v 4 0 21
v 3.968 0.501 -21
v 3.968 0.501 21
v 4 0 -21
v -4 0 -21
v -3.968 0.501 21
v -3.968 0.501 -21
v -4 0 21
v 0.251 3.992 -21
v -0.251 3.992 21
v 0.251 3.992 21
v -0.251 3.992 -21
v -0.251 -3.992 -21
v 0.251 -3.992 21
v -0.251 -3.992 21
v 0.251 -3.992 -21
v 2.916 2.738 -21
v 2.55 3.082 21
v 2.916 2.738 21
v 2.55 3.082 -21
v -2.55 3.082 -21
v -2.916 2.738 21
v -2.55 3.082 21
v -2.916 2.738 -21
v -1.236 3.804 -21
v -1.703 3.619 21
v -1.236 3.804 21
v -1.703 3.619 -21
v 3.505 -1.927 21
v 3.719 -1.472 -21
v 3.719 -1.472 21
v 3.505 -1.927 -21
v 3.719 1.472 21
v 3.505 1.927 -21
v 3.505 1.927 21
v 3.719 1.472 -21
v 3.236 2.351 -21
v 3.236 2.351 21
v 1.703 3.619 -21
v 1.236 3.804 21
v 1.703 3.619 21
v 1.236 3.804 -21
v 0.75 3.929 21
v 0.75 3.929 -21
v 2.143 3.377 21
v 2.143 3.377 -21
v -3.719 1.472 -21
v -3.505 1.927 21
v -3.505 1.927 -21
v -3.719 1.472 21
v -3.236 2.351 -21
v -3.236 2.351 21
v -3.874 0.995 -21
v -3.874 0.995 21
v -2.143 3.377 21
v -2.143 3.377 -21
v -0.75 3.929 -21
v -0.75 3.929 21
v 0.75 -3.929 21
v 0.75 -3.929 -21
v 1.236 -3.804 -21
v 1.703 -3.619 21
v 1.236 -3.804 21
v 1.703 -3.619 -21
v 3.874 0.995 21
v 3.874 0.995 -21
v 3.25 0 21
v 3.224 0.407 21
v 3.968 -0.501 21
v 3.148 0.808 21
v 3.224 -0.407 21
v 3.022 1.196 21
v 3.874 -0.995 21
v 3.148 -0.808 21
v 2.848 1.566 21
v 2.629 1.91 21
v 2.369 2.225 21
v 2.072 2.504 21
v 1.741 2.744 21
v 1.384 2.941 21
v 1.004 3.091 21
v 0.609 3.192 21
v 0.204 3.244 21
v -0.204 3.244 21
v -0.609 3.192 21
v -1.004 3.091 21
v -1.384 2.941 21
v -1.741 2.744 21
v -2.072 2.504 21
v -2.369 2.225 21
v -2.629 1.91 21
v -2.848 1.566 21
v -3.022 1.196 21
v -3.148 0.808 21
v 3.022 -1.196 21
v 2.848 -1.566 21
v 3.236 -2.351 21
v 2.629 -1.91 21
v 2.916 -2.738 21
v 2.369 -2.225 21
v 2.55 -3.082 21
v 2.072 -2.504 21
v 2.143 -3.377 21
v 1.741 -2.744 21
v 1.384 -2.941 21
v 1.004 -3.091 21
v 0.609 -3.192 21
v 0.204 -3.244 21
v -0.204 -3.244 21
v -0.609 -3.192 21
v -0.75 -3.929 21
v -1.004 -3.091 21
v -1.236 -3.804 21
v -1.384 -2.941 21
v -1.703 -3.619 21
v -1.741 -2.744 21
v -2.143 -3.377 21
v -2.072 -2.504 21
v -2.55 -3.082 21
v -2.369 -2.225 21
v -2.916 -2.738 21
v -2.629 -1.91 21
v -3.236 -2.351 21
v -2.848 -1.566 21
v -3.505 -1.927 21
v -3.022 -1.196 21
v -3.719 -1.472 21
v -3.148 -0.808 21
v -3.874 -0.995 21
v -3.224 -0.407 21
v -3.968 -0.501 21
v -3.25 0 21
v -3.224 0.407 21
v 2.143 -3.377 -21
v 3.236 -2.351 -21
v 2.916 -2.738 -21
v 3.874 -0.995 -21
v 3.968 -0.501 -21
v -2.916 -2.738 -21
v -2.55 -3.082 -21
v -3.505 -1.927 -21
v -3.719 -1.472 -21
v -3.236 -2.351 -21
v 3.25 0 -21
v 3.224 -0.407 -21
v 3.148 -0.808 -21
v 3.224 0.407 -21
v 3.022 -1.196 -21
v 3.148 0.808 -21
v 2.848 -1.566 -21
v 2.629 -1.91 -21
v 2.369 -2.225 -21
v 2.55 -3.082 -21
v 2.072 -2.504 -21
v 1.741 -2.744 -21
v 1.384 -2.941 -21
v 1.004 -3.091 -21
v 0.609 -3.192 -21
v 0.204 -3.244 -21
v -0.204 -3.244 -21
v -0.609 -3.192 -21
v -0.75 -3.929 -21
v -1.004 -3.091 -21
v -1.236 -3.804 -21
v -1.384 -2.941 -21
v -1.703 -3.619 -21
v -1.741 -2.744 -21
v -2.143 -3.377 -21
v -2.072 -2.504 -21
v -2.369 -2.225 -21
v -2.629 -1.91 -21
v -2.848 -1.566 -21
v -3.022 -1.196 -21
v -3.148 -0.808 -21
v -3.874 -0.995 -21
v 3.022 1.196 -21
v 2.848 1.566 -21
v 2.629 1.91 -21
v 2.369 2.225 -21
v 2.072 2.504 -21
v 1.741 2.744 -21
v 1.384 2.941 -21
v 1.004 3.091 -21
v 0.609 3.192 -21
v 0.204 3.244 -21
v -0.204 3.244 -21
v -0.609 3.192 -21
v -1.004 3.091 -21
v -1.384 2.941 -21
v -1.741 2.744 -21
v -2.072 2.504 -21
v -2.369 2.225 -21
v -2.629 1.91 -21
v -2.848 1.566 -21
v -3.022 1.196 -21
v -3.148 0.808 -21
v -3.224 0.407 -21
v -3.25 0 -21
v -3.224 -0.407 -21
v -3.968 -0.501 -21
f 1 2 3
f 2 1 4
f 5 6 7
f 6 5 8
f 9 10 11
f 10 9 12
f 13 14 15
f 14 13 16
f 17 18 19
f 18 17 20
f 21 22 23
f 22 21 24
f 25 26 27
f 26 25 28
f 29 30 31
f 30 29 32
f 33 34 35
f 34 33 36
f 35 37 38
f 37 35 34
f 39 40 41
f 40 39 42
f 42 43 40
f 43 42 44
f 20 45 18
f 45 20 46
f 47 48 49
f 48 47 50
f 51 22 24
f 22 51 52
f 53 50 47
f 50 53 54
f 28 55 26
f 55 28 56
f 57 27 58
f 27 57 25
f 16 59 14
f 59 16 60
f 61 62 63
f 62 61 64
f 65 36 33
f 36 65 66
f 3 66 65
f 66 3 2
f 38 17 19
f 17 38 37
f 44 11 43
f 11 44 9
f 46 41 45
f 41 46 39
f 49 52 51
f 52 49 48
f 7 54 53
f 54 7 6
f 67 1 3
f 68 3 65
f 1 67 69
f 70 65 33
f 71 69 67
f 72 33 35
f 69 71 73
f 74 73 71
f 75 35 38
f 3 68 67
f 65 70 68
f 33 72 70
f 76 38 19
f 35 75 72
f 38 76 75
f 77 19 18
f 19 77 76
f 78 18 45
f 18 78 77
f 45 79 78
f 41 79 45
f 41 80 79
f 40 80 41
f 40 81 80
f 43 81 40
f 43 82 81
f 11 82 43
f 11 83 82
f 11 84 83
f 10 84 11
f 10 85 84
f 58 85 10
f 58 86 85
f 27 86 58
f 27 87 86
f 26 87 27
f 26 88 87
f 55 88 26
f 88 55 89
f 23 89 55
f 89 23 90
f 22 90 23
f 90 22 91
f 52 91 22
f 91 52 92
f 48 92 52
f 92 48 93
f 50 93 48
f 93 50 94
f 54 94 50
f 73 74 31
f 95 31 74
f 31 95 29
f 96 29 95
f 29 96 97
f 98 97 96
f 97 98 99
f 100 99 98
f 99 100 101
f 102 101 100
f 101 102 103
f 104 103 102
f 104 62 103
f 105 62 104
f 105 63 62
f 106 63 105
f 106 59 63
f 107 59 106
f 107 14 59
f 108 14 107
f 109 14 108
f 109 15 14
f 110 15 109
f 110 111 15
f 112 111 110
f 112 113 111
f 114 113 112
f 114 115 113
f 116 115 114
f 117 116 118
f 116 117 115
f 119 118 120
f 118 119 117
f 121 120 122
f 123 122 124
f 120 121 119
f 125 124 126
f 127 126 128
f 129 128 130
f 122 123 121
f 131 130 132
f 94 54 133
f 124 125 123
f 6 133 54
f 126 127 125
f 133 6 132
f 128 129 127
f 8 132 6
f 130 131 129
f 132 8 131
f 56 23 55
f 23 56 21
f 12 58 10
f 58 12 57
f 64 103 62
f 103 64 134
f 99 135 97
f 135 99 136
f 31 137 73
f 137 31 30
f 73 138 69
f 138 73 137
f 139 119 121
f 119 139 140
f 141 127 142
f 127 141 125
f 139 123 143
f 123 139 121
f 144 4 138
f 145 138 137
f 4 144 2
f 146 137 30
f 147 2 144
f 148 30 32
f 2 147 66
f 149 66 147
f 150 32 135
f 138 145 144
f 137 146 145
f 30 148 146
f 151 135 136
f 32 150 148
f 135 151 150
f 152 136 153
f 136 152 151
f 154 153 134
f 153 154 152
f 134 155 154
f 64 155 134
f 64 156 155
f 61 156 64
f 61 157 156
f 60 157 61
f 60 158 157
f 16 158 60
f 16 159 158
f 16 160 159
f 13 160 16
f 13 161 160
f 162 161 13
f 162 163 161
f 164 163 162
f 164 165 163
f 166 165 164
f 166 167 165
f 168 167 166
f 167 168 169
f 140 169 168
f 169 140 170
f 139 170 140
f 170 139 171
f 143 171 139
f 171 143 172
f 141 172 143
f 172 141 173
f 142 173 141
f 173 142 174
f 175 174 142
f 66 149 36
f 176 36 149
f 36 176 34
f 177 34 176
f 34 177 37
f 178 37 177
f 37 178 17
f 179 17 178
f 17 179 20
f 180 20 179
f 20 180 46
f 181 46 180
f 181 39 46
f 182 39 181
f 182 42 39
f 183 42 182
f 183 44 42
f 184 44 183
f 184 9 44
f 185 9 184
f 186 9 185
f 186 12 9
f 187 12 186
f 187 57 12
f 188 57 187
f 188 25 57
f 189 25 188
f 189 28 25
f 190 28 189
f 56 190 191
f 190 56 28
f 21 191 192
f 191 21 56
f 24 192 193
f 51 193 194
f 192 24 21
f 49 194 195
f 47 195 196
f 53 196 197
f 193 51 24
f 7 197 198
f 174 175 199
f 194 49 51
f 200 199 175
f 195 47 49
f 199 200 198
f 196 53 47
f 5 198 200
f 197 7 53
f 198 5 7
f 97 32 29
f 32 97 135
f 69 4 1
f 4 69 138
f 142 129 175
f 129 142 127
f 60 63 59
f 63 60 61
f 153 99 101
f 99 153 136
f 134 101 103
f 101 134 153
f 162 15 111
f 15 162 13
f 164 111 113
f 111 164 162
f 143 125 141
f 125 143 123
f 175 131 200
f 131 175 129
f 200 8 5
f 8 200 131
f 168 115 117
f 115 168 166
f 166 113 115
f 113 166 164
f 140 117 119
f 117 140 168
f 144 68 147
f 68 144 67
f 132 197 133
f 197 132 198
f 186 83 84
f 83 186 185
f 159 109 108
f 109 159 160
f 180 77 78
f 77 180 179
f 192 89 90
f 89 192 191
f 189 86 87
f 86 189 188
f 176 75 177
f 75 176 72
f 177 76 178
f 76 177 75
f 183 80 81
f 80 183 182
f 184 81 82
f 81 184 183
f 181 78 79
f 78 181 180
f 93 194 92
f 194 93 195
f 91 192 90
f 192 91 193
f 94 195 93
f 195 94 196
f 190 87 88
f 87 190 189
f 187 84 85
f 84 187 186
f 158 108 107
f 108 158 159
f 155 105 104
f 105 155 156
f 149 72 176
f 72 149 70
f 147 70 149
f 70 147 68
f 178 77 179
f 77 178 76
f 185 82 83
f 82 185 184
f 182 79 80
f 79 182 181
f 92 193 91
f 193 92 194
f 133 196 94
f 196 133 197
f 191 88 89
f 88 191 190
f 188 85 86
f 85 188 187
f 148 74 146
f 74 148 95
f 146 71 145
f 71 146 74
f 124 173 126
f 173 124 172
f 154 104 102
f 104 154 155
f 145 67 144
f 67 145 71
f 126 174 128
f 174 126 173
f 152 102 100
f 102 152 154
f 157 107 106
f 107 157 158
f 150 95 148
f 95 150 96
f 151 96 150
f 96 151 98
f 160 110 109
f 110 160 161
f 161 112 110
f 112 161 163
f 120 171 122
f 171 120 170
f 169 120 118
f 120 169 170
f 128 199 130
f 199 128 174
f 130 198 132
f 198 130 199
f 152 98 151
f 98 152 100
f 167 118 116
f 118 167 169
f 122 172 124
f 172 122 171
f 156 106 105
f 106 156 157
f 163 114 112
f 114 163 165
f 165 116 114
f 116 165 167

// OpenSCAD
$fn = 50;


difference() {
	union() {
		translate(v = [0, 0, -21.0000000000]) {
			cylinder(h = 42, r = 4.0000000000);
		}
	}
	union() {
		translate(v = [0, 0, -100.0000000000]) {
			cylinder(h = 200, r = 3.2500000000);
		}
	}
}
